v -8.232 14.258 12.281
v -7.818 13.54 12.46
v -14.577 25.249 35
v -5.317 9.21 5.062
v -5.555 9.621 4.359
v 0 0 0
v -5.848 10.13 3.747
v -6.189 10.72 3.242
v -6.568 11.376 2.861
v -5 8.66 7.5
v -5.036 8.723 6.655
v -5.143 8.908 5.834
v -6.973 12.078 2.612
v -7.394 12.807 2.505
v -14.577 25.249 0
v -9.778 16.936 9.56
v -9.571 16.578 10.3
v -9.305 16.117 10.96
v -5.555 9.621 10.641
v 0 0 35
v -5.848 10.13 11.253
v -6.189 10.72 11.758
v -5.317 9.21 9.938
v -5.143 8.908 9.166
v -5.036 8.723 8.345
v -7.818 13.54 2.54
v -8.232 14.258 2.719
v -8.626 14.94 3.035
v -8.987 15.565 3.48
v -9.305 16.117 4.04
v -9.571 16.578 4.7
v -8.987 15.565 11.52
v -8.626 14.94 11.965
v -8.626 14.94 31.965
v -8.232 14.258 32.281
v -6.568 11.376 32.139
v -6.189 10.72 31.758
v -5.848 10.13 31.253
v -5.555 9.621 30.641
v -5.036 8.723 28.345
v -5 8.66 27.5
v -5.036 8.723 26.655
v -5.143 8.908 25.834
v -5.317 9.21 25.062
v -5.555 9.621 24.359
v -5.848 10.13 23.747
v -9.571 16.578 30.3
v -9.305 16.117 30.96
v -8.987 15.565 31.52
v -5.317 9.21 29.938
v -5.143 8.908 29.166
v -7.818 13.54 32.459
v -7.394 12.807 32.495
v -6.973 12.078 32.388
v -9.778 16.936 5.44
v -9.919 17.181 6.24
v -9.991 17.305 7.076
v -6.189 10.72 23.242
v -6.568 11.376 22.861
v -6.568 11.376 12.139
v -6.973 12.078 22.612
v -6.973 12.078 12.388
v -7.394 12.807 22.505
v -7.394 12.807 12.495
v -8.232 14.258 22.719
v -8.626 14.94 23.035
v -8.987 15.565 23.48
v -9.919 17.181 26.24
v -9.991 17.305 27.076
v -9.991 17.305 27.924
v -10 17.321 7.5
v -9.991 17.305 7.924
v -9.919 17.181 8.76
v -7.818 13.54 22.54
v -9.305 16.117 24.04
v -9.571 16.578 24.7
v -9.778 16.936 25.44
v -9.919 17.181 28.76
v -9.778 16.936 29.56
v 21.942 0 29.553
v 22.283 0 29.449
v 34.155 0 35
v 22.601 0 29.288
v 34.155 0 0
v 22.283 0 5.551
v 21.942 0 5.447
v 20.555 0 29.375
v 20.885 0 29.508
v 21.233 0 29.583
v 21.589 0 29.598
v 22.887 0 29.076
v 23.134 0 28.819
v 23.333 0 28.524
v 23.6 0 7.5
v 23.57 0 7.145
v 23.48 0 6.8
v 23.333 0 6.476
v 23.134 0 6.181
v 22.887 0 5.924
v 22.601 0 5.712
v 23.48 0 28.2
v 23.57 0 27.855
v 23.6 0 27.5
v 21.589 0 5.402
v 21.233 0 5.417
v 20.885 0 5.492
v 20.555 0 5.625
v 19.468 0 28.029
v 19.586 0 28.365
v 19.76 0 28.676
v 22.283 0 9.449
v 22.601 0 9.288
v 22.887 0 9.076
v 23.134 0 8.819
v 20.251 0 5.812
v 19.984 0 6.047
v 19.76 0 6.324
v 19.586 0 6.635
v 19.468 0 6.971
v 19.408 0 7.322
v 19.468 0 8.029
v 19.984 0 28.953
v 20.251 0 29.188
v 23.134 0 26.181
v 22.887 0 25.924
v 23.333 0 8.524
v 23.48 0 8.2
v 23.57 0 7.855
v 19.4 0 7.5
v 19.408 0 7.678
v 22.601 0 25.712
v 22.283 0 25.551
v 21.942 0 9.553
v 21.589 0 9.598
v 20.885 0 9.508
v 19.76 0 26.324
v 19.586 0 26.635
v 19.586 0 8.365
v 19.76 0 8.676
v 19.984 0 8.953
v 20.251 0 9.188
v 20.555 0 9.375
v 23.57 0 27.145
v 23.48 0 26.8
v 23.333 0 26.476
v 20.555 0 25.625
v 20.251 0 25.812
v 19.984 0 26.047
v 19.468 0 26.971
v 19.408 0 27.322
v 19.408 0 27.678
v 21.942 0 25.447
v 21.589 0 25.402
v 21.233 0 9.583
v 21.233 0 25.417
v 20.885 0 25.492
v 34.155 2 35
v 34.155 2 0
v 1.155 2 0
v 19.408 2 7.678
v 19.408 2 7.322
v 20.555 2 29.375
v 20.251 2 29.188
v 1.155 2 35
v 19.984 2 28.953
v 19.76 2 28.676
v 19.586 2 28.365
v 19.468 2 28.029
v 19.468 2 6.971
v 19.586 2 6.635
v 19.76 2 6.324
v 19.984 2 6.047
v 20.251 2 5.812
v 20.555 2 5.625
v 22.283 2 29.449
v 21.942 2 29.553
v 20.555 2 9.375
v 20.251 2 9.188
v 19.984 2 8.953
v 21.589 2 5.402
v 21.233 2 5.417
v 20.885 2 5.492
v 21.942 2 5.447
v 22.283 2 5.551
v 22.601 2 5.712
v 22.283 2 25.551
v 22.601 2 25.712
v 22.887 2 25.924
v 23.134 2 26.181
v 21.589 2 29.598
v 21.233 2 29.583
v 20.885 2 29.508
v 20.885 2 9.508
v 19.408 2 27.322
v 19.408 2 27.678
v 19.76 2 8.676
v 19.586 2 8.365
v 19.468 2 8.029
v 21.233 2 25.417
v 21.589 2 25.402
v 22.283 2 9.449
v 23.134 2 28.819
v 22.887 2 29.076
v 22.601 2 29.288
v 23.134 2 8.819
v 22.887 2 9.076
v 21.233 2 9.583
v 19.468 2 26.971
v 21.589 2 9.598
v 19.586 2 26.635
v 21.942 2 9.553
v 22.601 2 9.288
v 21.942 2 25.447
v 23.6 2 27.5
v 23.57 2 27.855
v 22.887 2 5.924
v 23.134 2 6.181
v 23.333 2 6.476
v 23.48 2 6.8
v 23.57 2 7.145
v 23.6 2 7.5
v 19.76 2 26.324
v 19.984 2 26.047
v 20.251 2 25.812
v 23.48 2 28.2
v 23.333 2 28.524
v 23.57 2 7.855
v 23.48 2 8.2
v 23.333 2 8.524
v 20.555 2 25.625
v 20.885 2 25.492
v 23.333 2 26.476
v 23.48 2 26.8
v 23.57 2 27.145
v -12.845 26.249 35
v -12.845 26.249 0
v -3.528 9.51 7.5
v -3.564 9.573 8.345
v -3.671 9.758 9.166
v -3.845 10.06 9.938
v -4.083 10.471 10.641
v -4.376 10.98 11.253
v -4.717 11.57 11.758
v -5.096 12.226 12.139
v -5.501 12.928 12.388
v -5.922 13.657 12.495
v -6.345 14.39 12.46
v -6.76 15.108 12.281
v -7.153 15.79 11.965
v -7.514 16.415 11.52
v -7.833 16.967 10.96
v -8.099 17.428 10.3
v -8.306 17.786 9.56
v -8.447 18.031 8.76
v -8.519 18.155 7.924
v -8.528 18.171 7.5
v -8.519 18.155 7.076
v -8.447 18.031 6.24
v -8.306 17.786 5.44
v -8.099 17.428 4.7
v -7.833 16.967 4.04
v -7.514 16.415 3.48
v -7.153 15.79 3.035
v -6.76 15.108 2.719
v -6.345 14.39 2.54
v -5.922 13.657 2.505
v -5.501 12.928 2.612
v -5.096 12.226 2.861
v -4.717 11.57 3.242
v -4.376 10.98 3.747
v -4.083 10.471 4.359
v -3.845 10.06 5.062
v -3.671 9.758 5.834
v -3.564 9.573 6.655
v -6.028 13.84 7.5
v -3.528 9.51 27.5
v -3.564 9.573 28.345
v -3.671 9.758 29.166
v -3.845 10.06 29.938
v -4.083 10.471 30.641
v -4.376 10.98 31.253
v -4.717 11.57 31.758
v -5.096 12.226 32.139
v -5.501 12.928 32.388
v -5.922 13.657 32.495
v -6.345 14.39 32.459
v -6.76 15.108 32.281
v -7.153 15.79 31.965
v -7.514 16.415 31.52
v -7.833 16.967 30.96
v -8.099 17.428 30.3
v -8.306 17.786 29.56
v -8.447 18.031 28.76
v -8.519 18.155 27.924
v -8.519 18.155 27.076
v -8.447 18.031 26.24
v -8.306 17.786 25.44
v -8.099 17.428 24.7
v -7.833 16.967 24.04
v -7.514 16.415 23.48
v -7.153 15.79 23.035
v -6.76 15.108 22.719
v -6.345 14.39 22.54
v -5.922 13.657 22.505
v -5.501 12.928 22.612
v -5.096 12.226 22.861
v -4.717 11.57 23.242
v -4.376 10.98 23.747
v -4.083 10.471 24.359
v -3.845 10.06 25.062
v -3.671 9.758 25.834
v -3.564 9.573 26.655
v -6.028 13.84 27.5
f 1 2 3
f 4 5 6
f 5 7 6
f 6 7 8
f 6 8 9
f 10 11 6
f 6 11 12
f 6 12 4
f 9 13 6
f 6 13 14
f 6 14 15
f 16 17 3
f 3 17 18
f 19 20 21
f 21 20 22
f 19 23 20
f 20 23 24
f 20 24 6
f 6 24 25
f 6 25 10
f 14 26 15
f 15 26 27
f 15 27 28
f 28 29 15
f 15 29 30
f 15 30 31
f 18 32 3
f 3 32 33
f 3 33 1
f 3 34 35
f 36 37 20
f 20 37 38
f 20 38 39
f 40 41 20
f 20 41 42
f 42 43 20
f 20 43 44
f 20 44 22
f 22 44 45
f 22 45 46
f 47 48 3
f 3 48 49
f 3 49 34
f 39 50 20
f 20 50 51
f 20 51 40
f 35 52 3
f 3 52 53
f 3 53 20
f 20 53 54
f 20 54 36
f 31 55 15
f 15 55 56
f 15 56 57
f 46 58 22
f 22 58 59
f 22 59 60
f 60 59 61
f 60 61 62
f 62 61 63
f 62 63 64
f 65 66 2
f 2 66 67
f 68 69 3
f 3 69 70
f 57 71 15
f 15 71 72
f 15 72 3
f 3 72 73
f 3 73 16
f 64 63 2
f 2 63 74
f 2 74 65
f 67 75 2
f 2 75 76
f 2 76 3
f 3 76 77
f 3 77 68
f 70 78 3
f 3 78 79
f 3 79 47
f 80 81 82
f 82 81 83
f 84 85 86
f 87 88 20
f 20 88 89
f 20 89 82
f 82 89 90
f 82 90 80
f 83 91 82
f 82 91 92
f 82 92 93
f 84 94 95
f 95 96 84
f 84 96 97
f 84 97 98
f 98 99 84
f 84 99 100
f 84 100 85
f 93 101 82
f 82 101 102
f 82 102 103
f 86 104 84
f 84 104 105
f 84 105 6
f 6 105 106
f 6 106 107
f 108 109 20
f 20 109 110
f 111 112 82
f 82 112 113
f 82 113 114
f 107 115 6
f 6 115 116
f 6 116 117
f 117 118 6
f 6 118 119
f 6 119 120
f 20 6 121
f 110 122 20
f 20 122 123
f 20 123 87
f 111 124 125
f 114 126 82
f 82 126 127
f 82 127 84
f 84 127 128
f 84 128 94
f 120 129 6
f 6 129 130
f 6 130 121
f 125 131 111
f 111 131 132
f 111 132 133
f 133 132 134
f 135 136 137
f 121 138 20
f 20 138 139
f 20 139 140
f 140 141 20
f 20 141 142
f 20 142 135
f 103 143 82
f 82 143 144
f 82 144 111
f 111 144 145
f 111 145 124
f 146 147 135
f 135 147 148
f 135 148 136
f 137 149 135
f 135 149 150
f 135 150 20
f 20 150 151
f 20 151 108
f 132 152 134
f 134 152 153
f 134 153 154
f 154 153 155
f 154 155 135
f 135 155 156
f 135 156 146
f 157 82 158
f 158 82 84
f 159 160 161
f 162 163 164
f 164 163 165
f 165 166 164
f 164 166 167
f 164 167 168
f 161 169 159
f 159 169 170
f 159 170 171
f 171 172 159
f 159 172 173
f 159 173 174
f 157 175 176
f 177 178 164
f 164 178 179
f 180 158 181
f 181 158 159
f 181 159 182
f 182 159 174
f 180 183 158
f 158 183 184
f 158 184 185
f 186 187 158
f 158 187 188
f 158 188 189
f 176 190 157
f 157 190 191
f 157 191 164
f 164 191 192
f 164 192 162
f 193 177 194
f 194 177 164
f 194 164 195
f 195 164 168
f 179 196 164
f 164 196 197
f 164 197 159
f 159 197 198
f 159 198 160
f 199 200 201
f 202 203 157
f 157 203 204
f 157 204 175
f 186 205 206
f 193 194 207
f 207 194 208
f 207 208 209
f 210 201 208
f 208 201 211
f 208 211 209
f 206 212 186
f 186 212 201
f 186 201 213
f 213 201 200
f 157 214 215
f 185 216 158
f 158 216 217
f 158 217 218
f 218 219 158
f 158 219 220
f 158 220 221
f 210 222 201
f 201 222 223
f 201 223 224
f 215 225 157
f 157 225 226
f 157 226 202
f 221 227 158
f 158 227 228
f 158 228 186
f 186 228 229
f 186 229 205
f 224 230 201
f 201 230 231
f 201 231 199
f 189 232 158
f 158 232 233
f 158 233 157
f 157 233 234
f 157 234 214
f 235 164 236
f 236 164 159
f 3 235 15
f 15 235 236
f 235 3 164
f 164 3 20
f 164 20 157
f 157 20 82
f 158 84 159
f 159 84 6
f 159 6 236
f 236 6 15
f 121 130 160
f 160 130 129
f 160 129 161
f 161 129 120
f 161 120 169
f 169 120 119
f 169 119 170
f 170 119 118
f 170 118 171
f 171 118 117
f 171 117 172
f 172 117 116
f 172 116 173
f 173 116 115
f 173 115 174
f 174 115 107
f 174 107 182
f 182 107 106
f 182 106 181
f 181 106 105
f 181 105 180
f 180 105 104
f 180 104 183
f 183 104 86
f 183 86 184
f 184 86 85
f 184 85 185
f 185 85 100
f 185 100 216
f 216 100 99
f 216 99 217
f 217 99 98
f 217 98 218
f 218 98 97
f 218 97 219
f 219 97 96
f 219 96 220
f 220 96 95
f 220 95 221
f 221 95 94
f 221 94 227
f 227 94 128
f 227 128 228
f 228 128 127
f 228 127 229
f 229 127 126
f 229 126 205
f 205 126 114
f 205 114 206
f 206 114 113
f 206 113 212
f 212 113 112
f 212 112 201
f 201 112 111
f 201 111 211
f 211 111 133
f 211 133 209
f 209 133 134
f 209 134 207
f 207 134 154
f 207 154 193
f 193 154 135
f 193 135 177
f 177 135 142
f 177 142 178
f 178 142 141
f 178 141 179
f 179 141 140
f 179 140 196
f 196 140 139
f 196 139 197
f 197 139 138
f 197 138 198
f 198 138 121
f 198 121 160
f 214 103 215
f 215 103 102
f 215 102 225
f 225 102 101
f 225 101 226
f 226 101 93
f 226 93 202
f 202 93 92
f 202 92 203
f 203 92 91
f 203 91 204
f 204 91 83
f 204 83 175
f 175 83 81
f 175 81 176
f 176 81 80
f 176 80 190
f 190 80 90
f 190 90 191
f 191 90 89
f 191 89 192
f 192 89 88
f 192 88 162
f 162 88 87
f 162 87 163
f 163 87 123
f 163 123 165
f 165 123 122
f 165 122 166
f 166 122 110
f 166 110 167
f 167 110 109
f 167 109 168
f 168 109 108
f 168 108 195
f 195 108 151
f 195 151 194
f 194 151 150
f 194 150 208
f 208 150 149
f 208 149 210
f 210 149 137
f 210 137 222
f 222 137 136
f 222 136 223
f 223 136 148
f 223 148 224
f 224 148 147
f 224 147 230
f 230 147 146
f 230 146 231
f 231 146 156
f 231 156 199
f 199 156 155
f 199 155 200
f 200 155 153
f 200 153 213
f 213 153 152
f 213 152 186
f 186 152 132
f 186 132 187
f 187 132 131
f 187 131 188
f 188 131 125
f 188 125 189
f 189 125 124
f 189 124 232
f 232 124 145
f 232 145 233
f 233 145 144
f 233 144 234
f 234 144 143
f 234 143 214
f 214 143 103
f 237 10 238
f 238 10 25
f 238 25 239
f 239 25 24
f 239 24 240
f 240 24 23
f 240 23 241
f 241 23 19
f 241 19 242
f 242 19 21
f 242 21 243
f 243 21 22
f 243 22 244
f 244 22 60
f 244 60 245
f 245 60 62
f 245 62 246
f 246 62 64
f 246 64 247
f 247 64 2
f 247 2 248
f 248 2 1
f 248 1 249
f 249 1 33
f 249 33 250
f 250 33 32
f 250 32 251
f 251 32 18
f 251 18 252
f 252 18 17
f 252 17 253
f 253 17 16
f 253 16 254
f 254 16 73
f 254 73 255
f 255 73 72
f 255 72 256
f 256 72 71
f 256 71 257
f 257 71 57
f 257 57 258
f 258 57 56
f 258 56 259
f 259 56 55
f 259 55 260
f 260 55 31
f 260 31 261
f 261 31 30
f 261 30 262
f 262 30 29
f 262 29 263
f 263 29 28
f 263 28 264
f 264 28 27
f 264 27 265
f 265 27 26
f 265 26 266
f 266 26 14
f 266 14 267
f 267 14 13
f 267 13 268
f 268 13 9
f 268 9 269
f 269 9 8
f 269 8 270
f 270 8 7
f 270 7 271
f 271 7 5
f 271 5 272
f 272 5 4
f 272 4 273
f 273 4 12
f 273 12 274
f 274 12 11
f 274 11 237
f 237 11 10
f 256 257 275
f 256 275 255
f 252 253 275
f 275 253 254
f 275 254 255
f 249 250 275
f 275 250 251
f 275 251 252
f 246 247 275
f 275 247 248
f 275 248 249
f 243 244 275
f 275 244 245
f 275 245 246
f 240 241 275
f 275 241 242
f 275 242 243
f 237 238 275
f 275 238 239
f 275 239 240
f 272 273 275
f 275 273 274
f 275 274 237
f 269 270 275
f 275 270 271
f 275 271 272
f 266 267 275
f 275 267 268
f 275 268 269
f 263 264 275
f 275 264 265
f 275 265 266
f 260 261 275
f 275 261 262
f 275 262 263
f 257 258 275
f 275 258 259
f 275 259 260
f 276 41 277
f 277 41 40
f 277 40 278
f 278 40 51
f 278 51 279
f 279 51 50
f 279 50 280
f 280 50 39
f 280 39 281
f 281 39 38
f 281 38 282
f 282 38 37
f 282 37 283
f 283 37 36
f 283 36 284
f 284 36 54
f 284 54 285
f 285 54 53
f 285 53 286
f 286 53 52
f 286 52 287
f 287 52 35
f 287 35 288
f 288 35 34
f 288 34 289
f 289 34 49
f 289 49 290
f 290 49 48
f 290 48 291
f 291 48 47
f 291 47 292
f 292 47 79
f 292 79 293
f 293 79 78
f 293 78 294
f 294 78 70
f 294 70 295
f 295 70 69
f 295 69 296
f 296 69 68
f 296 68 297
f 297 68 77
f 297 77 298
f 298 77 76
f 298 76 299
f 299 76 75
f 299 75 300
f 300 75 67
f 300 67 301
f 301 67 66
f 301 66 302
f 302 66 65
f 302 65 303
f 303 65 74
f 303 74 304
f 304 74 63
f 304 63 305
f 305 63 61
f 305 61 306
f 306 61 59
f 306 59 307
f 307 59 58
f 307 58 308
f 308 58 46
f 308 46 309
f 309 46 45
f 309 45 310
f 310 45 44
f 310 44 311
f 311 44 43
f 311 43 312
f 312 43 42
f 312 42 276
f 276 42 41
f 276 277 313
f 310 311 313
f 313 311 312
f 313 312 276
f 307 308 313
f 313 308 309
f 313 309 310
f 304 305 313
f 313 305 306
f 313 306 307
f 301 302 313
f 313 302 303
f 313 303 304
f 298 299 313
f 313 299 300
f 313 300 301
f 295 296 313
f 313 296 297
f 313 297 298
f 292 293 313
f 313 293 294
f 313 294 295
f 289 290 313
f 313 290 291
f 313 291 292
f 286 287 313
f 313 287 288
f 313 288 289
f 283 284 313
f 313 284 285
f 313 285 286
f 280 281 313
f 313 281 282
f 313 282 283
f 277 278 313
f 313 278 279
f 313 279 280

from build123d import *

# Parameters (mm, degrees)
EXTRUDE_3_DEPTH     = 35
SKETCH_3_R          = 2.1
CUT_EXTRUDE_1_DEPTH = 56.502598264
SKETCH_4_R          = 5
CUT_EXTRUDE_2_DEPTH = 1.7


with BuildPart() as part:
    # 草图1 → 凸台-拉伸3 (new body)
    with BuildSketch(Plane.XY):
        Polygon((0, 0), (34.154700538, 0), (34.154700538, 2), (1.154700538, 2), (-12.845299462, 26.248711306), (-14.577350269, 25.248711306), align=None)
    extrude(amount=EXTRUDE_3_DEPTH)

    # 草图3 → 切除-拉伸1 (cut, through all)
    with BuildSketch(Plane.XZ):
        with Locations((21.5, 27.5)):
            Circle(SKETCH_3_R)
        with Locations((21.5, 7.5)):
            Circle(SKETCH_3_R)
    extrude(amount=-CUT_EXTRUDE_1_DEPTH, mode=Mode.SUBTRACT)

    # 草图4 → 切除-拉伸2 (cut)
    with BuildSketch(Plane(origin=(0, 0, 0), x_dir=(0, 0, 1), z_dir=(-0.8660254037844397, -0.499999999999998, 0))):
        with Locations(Location((27.5, 15, 0), (0, 0, 270))):
            Circle(SKETCH_4_R)
        with Locations(Location((7.5, 15, 0), (0, 0, 270))):
            Circle(SKETCH_4_R)
    extrude(amount=-CUT_EXTRUDE_2_DEPTH, mode=Mode.SUBTRACT)


solid = part.part
